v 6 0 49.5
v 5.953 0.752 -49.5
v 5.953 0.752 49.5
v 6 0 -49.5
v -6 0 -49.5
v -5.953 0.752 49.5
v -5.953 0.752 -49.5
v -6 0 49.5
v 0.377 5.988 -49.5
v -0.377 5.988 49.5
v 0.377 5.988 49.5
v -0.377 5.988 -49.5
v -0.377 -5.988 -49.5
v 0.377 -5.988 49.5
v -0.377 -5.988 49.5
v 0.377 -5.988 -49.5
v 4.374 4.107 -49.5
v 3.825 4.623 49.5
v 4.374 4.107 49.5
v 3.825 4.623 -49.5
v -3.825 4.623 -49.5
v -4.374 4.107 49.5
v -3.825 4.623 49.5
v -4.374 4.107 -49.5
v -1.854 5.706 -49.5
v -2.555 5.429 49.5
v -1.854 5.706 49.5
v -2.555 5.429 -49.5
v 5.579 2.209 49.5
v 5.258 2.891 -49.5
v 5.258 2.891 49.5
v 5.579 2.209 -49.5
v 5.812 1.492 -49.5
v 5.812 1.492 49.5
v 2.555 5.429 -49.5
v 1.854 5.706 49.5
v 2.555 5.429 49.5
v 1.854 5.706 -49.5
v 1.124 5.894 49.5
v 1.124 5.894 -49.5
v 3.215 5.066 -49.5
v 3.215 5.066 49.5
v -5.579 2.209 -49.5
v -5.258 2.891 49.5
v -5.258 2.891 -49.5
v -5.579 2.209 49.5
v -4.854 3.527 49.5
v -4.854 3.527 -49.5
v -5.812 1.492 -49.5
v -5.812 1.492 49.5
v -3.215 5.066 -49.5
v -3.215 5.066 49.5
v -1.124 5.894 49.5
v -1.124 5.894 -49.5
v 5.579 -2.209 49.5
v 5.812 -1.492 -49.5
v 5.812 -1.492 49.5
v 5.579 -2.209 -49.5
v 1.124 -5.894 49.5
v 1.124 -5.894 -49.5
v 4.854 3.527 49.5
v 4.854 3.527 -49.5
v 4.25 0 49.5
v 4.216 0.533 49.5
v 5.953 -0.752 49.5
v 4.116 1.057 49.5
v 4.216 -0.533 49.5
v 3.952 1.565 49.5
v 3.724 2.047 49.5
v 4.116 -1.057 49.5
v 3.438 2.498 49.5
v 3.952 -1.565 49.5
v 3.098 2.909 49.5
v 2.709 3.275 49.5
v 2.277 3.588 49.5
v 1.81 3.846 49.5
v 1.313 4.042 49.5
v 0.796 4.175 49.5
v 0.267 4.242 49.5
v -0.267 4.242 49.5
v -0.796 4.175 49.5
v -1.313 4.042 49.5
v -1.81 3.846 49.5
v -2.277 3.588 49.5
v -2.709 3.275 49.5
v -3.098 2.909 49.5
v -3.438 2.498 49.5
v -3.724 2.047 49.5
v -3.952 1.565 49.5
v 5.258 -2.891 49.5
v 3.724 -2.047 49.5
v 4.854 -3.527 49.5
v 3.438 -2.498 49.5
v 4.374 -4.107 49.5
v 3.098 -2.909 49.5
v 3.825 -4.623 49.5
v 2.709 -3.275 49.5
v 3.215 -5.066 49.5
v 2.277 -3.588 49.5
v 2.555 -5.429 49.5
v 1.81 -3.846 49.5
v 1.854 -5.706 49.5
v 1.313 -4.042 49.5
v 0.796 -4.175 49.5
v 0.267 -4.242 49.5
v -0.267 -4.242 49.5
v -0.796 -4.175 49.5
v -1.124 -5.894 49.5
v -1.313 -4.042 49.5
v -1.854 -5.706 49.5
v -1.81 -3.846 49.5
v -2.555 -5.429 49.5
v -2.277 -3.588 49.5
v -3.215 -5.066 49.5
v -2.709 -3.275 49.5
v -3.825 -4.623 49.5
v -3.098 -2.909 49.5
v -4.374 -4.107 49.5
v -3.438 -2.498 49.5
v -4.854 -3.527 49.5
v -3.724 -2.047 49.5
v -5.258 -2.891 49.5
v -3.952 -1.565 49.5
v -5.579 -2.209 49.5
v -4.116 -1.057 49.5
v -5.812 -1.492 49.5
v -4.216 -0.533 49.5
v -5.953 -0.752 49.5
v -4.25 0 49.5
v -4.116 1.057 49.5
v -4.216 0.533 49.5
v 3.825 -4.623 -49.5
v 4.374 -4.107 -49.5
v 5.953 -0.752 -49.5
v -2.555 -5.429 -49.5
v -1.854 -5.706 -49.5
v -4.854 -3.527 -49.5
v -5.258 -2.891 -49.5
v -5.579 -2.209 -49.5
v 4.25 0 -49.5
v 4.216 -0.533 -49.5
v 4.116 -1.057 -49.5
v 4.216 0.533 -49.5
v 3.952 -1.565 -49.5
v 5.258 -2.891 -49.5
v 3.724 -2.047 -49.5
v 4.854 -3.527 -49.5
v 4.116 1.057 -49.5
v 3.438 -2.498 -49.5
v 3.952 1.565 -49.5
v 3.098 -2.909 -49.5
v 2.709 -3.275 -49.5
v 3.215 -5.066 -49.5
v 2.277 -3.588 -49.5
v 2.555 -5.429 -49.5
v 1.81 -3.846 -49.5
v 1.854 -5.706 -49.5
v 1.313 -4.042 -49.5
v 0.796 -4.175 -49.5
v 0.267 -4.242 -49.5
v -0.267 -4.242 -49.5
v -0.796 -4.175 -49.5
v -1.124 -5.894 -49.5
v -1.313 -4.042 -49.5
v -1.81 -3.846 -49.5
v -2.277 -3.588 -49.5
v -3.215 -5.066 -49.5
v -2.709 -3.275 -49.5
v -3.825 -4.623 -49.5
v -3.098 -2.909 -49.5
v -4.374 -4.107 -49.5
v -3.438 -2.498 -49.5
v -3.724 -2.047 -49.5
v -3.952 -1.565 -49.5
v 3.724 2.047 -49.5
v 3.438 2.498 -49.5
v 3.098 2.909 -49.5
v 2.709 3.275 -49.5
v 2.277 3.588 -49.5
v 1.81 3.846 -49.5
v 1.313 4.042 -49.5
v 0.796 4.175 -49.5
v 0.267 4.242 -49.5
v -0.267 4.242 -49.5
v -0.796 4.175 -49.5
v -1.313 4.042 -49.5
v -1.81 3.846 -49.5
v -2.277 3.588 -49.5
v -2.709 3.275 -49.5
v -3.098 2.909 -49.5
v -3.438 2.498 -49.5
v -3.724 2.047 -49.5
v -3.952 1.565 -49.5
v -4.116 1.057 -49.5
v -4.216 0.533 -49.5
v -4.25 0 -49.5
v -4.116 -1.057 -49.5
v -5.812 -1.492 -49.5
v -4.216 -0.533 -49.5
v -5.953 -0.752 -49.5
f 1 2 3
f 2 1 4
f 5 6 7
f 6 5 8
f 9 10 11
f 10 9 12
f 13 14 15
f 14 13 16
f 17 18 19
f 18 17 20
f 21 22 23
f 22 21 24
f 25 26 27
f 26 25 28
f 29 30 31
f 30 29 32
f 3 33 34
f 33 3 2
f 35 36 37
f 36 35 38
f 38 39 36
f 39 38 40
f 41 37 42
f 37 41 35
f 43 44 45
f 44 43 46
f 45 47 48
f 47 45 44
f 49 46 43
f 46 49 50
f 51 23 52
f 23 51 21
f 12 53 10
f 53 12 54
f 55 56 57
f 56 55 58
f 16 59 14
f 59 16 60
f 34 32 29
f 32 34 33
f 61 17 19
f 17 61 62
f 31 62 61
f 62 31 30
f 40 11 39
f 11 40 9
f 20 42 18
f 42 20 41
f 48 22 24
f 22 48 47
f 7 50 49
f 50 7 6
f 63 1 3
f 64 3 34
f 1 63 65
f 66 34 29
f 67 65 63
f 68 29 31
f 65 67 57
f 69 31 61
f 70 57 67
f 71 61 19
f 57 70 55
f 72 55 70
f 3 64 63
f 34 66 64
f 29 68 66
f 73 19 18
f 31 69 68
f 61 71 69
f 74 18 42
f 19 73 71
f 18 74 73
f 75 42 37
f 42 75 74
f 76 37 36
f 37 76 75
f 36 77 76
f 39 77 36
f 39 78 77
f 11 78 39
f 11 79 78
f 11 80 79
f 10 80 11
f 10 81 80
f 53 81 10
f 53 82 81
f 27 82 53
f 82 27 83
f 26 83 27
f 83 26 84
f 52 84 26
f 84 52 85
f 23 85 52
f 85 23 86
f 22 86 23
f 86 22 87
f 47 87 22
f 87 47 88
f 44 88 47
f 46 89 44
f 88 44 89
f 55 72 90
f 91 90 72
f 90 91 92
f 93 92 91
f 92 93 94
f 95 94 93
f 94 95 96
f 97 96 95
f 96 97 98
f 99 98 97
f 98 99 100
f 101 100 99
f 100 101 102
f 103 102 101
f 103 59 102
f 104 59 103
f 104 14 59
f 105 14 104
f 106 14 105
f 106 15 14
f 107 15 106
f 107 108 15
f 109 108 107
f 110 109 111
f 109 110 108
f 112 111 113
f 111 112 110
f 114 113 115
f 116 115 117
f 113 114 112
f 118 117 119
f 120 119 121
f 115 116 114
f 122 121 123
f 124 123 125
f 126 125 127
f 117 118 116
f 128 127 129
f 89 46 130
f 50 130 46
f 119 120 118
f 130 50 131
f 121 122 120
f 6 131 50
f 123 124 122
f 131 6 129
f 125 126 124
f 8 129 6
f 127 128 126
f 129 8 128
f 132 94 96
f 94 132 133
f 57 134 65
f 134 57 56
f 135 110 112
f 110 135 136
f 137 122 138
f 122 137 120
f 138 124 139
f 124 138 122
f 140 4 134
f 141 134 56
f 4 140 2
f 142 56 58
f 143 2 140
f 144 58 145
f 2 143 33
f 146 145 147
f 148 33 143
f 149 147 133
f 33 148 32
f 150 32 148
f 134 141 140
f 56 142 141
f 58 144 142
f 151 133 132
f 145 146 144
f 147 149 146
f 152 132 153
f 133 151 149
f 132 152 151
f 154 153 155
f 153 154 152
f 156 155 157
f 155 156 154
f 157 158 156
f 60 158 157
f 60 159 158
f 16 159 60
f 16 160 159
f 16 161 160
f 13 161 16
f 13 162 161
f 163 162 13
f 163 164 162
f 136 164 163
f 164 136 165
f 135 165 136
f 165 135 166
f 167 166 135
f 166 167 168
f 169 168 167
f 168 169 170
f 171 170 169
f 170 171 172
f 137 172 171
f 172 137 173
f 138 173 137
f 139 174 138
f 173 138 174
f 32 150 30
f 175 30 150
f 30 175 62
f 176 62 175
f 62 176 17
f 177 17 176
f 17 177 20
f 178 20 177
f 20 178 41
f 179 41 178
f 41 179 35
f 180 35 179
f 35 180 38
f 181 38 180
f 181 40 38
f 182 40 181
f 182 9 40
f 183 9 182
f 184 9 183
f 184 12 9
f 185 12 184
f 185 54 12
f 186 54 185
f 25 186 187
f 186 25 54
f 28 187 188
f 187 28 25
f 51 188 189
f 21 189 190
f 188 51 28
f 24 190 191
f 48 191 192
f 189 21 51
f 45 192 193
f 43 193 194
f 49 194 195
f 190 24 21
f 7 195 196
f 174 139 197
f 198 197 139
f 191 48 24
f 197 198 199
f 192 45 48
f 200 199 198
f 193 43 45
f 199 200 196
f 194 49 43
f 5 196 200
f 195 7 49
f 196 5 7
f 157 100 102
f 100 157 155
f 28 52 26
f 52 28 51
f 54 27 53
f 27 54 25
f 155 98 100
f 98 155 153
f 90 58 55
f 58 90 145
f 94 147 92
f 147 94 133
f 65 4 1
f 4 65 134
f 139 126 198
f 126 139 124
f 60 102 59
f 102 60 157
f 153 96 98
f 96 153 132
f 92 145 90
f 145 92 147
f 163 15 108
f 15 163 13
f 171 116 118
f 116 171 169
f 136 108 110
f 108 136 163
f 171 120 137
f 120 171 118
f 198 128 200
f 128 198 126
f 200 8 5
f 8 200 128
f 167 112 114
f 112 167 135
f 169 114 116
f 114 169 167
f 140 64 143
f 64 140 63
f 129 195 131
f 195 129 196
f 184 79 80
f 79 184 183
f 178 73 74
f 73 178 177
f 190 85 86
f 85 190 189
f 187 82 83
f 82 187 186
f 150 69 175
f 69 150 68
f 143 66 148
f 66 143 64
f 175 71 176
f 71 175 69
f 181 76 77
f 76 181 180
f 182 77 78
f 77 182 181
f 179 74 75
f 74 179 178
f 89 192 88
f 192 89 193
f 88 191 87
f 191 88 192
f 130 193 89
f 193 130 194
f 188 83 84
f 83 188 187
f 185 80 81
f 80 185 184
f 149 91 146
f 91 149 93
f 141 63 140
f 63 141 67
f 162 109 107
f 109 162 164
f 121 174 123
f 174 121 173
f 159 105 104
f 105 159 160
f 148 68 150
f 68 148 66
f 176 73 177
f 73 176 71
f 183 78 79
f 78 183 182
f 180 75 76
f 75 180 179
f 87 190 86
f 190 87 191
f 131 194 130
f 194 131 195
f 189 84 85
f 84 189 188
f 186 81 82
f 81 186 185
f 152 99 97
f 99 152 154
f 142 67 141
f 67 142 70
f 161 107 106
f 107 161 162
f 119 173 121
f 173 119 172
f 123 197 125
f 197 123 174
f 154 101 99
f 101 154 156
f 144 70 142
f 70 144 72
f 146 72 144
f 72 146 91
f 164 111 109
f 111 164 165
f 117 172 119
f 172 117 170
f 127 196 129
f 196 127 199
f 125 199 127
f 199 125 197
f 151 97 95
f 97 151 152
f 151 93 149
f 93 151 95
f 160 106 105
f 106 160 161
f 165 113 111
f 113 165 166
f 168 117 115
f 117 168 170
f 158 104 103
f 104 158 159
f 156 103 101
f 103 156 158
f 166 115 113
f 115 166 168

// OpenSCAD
$fn = 50;


difference() {
	union() {
		translate(v = [0, 0, -49.5000000000]) {
			cylinder(h = 99, r = 6.0000000000);
		}
	}
	union() {
		translate(v = [0, 0, -100.0000000000]) {
			cylinder(h = 200, r = 4.2500000000);
		}
	}
}
